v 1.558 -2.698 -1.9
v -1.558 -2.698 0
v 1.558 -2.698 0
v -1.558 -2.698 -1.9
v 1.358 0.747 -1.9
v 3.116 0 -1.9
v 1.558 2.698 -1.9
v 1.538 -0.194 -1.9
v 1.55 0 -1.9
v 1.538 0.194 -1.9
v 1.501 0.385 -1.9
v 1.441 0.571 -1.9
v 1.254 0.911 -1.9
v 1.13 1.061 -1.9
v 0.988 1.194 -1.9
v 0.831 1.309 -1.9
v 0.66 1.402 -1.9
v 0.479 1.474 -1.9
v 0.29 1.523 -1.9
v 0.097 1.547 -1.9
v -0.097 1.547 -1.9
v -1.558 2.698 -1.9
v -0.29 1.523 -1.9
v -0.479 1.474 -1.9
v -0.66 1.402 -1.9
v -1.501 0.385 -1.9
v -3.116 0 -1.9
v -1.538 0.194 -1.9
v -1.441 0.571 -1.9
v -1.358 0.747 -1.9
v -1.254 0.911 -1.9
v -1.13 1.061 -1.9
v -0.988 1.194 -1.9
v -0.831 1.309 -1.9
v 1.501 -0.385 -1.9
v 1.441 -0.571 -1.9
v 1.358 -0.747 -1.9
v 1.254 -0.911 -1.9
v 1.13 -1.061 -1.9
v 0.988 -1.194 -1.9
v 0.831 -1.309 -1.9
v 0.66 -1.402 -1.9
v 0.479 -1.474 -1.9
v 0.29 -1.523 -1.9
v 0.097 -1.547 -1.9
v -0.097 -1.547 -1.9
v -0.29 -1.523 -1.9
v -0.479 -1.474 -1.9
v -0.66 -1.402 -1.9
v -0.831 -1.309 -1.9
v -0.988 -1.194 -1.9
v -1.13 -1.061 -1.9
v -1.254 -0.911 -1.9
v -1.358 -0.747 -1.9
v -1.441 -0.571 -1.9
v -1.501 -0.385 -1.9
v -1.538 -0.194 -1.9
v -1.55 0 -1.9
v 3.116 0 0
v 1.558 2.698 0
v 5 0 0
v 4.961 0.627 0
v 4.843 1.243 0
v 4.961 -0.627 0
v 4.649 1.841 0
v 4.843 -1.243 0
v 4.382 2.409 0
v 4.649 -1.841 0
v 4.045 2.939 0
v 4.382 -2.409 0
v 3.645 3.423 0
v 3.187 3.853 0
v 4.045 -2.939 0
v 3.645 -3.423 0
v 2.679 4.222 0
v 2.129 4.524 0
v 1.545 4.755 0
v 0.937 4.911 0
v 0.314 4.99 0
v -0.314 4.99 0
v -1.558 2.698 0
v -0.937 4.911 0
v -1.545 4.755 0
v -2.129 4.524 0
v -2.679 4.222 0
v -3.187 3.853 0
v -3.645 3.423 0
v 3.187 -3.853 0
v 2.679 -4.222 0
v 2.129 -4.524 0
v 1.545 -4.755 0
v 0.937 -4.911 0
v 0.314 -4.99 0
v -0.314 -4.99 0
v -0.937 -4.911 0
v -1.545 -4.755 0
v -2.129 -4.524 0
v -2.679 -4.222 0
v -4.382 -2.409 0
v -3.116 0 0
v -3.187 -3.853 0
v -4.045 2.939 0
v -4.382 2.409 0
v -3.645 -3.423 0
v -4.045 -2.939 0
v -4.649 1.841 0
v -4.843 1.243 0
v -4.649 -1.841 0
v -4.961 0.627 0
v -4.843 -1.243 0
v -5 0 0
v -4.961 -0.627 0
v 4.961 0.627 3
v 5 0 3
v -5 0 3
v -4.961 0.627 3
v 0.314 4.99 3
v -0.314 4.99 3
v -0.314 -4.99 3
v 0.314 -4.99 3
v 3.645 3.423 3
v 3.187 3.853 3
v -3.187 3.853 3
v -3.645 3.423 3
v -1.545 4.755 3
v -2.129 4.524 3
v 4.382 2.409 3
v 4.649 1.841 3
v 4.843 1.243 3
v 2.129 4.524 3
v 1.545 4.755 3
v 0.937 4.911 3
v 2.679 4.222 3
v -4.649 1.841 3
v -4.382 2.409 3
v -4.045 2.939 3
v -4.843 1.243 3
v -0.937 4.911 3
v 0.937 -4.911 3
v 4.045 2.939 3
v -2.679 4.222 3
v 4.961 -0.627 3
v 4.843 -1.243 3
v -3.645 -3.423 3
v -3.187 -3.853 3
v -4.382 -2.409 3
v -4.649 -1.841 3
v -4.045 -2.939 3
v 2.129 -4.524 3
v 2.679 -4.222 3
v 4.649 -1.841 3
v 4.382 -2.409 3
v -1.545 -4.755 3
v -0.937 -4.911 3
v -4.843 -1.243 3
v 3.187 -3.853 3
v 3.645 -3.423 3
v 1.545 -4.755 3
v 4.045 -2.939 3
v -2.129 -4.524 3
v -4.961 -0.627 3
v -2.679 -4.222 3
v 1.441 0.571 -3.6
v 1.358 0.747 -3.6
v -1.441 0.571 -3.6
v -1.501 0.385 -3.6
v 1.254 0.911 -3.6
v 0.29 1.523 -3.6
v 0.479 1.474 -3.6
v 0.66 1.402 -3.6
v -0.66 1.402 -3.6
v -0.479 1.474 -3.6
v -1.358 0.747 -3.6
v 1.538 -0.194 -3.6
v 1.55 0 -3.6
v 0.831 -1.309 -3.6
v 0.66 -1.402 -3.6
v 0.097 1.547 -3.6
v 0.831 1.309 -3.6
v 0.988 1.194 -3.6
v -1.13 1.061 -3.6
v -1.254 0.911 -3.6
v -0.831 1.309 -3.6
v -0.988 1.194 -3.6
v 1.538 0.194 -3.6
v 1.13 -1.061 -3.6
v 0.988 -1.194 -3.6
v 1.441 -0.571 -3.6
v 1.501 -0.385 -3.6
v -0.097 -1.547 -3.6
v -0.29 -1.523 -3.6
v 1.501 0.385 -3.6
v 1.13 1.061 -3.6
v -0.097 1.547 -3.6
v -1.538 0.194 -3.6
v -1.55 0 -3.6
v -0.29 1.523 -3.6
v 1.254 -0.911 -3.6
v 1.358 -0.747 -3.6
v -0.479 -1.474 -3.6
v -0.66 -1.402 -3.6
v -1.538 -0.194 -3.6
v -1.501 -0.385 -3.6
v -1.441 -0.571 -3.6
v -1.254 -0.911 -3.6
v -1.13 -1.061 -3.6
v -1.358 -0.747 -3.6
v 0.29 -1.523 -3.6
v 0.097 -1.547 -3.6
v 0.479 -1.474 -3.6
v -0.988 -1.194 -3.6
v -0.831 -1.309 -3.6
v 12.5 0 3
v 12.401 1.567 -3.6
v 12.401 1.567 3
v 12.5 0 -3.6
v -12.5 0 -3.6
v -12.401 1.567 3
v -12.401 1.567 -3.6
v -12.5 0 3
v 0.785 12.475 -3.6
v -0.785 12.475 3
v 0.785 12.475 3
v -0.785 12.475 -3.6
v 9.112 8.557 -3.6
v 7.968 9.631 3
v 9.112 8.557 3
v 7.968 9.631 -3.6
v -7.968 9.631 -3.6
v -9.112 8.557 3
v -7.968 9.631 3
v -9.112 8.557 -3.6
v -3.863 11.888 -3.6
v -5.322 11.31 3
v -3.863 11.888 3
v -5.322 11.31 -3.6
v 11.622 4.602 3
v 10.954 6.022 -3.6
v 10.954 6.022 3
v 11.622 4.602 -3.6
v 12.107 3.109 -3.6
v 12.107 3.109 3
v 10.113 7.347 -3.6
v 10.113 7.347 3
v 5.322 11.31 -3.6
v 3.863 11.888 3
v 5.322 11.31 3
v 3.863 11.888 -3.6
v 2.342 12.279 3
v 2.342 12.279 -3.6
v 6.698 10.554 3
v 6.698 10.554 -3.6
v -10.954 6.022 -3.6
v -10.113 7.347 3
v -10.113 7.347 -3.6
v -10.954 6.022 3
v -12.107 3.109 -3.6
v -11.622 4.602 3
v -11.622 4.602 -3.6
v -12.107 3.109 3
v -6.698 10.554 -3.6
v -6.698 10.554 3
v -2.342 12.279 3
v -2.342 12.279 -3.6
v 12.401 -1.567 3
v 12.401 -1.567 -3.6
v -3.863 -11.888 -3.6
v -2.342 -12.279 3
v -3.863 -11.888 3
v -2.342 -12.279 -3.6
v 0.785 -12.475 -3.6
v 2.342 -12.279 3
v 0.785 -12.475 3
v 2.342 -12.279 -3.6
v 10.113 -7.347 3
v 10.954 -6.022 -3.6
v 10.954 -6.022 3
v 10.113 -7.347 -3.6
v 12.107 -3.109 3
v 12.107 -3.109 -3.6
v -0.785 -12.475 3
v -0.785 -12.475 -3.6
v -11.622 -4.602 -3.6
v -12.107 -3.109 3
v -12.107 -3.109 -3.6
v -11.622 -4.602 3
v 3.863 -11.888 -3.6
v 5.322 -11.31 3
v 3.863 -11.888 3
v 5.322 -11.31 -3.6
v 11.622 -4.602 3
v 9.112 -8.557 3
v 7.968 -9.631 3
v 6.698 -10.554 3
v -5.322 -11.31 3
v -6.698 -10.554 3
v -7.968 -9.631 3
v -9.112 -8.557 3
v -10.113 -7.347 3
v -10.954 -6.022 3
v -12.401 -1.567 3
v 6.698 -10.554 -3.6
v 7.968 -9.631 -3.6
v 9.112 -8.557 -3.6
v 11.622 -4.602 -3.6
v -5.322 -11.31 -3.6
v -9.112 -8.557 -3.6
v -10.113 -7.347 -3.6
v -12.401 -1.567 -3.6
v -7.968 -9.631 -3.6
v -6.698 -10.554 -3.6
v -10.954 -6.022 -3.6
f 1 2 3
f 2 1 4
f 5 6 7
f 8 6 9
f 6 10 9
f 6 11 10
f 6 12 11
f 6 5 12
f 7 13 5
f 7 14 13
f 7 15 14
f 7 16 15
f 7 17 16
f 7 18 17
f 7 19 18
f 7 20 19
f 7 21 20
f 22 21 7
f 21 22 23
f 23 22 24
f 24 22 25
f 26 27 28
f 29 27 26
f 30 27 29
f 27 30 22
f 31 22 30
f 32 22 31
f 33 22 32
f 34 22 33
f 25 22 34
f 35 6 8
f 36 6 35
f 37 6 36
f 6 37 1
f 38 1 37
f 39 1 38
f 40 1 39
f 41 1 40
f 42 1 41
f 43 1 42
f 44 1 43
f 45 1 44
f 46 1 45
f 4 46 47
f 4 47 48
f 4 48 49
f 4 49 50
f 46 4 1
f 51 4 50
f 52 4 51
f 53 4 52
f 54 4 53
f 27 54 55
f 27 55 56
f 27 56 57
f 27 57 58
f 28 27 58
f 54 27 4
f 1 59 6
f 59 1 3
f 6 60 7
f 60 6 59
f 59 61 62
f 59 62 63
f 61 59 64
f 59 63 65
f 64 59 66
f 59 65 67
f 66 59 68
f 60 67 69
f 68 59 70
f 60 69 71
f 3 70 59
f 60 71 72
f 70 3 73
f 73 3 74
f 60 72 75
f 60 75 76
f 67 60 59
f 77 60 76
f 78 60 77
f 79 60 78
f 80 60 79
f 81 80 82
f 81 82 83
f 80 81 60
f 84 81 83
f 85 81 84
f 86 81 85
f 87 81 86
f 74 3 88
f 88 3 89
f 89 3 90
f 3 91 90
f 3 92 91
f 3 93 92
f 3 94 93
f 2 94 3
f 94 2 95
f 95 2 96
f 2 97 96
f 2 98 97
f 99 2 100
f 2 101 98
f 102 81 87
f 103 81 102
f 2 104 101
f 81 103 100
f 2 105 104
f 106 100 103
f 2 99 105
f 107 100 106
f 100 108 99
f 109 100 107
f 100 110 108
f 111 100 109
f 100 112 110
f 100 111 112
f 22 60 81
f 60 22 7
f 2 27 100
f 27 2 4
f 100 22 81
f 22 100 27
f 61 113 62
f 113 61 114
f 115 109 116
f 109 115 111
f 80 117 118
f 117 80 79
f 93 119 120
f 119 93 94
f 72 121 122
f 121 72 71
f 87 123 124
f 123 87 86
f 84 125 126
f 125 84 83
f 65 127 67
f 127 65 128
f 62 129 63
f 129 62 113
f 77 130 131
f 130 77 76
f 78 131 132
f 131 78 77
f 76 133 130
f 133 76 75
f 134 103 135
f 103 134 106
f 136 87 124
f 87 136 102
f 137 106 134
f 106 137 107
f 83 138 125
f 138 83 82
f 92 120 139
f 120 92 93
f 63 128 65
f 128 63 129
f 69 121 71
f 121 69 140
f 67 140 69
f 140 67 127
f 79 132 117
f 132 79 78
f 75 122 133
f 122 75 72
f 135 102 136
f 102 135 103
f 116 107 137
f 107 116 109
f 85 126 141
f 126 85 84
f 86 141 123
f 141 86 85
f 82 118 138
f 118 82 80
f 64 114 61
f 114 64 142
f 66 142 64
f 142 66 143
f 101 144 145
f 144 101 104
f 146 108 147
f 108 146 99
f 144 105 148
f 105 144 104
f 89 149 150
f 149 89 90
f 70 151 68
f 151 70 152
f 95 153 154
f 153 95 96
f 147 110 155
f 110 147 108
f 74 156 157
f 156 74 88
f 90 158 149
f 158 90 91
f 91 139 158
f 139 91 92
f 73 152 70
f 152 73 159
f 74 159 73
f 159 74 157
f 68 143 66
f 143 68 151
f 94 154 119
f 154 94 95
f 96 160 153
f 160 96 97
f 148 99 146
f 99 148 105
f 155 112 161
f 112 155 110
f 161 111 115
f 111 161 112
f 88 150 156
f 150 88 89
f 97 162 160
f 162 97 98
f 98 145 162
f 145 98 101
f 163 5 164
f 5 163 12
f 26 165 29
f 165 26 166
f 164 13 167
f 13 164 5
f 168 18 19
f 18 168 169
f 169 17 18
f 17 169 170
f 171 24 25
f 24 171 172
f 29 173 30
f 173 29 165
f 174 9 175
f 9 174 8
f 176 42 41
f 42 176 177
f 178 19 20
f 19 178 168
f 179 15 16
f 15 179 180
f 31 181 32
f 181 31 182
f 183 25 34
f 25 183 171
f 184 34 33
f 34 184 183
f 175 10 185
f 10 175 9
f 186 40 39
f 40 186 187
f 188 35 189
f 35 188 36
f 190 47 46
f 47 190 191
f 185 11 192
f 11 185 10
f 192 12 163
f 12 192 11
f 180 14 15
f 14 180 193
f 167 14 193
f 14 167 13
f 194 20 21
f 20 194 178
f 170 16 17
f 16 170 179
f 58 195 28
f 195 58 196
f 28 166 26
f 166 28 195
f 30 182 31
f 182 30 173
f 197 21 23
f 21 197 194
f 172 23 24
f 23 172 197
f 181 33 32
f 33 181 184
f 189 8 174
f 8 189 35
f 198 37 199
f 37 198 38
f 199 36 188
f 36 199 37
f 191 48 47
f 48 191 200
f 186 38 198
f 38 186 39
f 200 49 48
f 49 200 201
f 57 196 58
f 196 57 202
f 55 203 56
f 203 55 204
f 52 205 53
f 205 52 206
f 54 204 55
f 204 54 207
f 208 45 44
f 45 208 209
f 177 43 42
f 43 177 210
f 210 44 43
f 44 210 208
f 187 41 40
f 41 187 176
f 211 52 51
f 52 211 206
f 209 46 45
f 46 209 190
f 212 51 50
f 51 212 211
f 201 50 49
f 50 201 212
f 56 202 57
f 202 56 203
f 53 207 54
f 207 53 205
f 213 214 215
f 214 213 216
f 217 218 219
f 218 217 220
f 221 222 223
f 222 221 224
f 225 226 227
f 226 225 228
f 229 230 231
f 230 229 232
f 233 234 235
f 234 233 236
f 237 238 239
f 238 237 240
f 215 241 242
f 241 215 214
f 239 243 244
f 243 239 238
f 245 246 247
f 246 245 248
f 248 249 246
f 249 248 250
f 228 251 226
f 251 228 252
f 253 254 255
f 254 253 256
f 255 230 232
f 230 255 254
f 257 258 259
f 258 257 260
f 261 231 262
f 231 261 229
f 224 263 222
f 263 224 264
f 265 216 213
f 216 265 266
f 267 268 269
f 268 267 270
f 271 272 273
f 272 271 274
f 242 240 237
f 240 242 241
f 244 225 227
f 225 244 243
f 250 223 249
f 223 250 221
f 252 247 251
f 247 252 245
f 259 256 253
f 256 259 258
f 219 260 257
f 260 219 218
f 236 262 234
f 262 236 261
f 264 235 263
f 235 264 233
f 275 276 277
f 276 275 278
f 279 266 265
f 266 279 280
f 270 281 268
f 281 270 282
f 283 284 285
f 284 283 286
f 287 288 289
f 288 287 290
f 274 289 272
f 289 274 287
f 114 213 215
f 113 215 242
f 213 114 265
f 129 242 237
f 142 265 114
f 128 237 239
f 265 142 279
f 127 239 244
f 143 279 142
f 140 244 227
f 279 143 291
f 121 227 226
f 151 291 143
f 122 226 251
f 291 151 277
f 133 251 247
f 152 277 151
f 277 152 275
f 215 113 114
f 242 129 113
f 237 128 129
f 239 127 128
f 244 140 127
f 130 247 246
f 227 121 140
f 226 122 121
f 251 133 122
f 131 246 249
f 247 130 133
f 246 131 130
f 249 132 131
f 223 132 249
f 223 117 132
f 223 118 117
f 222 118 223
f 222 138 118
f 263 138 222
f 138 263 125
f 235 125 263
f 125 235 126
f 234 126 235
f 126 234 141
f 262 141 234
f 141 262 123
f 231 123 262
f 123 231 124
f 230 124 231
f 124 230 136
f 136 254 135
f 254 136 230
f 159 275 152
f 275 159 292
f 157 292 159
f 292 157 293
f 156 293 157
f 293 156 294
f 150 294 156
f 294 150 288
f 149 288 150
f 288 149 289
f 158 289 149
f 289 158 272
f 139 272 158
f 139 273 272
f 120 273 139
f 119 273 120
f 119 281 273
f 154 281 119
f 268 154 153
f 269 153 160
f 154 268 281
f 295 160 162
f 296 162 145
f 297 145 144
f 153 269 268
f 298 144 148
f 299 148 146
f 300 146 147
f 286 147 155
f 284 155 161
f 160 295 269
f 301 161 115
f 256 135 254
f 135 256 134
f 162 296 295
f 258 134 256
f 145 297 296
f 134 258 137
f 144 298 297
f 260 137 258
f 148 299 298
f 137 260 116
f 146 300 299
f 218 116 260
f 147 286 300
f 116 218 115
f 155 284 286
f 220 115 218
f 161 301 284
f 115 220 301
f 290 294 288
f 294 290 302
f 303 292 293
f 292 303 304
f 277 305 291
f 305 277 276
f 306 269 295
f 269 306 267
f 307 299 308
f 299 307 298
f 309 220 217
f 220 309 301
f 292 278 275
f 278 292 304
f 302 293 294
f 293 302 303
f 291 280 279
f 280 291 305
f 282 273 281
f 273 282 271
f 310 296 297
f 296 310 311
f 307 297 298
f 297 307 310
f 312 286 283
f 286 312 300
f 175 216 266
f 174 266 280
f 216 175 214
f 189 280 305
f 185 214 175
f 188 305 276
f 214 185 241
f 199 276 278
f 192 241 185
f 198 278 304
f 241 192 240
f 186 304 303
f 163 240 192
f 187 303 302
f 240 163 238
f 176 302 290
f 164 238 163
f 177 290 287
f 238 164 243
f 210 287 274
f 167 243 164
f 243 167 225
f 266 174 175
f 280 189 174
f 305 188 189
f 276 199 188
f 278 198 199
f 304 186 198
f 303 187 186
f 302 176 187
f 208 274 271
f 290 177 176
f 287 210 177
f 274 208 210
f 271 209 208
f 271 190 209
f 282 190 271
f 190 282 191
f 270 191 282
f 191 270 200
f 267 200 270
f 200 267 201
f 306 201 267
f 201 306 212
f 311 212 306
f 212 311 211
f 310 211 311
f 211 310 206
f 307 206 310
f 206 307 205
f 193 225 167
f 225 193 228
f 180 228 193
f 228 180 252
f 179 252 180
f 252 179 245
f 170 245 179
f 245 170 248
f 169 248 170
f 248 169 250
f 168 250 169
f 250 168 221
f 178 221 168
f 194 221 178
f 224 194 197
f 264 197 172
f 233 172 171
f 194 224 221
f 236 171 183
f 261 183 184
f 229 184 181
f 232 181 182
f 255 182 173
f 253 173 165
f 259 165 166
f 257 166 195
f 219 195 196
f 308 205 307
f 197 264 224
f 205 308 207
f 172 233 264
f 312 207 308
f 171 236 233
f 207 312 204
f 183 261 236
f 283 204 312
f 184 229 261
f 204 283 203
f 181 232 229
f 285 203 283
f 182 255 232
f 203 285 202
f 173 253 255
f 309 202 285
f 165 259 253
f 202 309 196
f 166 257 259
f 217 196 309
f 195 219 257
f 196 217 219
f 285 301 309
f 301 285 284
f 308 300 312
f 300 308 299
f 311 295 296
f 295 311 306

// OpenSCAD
$fn = 50;


difference() {
	union() {
		translate(v = [0, 0, -3.6000000000]) {
			cylinder(h = 6.6000000000, r = 12.5000000000);
		}
	}
	union() {
		translate(v = [0, 0, 0]) {
			rotate(a = [0, 0, 0]) {
				difference() {
					union() {
						translate(v = [0, 0, -1.9000000000]) {
							linear_extrude(height = 1.9000000000) {
								polygon(points = [[3.1158000000, 0.0000000000], [1.5579000000, 2.6983619531], [-1.5579000000, 2.6983619531], [-3.1158000000, 0.0000000000], [-1.5579000000, -2.6983619531], [1.5579000000, -2.6983619531]]);
							}
						}
					}
					union();
				}
			}
		}
		#cylinder(h = 3, r = 5.0000000000);
		#translate(v = [0, 0, -100.0000000000]) {
			cylinder(h = 200, r = 1.5500000000);
		}
	}
}
